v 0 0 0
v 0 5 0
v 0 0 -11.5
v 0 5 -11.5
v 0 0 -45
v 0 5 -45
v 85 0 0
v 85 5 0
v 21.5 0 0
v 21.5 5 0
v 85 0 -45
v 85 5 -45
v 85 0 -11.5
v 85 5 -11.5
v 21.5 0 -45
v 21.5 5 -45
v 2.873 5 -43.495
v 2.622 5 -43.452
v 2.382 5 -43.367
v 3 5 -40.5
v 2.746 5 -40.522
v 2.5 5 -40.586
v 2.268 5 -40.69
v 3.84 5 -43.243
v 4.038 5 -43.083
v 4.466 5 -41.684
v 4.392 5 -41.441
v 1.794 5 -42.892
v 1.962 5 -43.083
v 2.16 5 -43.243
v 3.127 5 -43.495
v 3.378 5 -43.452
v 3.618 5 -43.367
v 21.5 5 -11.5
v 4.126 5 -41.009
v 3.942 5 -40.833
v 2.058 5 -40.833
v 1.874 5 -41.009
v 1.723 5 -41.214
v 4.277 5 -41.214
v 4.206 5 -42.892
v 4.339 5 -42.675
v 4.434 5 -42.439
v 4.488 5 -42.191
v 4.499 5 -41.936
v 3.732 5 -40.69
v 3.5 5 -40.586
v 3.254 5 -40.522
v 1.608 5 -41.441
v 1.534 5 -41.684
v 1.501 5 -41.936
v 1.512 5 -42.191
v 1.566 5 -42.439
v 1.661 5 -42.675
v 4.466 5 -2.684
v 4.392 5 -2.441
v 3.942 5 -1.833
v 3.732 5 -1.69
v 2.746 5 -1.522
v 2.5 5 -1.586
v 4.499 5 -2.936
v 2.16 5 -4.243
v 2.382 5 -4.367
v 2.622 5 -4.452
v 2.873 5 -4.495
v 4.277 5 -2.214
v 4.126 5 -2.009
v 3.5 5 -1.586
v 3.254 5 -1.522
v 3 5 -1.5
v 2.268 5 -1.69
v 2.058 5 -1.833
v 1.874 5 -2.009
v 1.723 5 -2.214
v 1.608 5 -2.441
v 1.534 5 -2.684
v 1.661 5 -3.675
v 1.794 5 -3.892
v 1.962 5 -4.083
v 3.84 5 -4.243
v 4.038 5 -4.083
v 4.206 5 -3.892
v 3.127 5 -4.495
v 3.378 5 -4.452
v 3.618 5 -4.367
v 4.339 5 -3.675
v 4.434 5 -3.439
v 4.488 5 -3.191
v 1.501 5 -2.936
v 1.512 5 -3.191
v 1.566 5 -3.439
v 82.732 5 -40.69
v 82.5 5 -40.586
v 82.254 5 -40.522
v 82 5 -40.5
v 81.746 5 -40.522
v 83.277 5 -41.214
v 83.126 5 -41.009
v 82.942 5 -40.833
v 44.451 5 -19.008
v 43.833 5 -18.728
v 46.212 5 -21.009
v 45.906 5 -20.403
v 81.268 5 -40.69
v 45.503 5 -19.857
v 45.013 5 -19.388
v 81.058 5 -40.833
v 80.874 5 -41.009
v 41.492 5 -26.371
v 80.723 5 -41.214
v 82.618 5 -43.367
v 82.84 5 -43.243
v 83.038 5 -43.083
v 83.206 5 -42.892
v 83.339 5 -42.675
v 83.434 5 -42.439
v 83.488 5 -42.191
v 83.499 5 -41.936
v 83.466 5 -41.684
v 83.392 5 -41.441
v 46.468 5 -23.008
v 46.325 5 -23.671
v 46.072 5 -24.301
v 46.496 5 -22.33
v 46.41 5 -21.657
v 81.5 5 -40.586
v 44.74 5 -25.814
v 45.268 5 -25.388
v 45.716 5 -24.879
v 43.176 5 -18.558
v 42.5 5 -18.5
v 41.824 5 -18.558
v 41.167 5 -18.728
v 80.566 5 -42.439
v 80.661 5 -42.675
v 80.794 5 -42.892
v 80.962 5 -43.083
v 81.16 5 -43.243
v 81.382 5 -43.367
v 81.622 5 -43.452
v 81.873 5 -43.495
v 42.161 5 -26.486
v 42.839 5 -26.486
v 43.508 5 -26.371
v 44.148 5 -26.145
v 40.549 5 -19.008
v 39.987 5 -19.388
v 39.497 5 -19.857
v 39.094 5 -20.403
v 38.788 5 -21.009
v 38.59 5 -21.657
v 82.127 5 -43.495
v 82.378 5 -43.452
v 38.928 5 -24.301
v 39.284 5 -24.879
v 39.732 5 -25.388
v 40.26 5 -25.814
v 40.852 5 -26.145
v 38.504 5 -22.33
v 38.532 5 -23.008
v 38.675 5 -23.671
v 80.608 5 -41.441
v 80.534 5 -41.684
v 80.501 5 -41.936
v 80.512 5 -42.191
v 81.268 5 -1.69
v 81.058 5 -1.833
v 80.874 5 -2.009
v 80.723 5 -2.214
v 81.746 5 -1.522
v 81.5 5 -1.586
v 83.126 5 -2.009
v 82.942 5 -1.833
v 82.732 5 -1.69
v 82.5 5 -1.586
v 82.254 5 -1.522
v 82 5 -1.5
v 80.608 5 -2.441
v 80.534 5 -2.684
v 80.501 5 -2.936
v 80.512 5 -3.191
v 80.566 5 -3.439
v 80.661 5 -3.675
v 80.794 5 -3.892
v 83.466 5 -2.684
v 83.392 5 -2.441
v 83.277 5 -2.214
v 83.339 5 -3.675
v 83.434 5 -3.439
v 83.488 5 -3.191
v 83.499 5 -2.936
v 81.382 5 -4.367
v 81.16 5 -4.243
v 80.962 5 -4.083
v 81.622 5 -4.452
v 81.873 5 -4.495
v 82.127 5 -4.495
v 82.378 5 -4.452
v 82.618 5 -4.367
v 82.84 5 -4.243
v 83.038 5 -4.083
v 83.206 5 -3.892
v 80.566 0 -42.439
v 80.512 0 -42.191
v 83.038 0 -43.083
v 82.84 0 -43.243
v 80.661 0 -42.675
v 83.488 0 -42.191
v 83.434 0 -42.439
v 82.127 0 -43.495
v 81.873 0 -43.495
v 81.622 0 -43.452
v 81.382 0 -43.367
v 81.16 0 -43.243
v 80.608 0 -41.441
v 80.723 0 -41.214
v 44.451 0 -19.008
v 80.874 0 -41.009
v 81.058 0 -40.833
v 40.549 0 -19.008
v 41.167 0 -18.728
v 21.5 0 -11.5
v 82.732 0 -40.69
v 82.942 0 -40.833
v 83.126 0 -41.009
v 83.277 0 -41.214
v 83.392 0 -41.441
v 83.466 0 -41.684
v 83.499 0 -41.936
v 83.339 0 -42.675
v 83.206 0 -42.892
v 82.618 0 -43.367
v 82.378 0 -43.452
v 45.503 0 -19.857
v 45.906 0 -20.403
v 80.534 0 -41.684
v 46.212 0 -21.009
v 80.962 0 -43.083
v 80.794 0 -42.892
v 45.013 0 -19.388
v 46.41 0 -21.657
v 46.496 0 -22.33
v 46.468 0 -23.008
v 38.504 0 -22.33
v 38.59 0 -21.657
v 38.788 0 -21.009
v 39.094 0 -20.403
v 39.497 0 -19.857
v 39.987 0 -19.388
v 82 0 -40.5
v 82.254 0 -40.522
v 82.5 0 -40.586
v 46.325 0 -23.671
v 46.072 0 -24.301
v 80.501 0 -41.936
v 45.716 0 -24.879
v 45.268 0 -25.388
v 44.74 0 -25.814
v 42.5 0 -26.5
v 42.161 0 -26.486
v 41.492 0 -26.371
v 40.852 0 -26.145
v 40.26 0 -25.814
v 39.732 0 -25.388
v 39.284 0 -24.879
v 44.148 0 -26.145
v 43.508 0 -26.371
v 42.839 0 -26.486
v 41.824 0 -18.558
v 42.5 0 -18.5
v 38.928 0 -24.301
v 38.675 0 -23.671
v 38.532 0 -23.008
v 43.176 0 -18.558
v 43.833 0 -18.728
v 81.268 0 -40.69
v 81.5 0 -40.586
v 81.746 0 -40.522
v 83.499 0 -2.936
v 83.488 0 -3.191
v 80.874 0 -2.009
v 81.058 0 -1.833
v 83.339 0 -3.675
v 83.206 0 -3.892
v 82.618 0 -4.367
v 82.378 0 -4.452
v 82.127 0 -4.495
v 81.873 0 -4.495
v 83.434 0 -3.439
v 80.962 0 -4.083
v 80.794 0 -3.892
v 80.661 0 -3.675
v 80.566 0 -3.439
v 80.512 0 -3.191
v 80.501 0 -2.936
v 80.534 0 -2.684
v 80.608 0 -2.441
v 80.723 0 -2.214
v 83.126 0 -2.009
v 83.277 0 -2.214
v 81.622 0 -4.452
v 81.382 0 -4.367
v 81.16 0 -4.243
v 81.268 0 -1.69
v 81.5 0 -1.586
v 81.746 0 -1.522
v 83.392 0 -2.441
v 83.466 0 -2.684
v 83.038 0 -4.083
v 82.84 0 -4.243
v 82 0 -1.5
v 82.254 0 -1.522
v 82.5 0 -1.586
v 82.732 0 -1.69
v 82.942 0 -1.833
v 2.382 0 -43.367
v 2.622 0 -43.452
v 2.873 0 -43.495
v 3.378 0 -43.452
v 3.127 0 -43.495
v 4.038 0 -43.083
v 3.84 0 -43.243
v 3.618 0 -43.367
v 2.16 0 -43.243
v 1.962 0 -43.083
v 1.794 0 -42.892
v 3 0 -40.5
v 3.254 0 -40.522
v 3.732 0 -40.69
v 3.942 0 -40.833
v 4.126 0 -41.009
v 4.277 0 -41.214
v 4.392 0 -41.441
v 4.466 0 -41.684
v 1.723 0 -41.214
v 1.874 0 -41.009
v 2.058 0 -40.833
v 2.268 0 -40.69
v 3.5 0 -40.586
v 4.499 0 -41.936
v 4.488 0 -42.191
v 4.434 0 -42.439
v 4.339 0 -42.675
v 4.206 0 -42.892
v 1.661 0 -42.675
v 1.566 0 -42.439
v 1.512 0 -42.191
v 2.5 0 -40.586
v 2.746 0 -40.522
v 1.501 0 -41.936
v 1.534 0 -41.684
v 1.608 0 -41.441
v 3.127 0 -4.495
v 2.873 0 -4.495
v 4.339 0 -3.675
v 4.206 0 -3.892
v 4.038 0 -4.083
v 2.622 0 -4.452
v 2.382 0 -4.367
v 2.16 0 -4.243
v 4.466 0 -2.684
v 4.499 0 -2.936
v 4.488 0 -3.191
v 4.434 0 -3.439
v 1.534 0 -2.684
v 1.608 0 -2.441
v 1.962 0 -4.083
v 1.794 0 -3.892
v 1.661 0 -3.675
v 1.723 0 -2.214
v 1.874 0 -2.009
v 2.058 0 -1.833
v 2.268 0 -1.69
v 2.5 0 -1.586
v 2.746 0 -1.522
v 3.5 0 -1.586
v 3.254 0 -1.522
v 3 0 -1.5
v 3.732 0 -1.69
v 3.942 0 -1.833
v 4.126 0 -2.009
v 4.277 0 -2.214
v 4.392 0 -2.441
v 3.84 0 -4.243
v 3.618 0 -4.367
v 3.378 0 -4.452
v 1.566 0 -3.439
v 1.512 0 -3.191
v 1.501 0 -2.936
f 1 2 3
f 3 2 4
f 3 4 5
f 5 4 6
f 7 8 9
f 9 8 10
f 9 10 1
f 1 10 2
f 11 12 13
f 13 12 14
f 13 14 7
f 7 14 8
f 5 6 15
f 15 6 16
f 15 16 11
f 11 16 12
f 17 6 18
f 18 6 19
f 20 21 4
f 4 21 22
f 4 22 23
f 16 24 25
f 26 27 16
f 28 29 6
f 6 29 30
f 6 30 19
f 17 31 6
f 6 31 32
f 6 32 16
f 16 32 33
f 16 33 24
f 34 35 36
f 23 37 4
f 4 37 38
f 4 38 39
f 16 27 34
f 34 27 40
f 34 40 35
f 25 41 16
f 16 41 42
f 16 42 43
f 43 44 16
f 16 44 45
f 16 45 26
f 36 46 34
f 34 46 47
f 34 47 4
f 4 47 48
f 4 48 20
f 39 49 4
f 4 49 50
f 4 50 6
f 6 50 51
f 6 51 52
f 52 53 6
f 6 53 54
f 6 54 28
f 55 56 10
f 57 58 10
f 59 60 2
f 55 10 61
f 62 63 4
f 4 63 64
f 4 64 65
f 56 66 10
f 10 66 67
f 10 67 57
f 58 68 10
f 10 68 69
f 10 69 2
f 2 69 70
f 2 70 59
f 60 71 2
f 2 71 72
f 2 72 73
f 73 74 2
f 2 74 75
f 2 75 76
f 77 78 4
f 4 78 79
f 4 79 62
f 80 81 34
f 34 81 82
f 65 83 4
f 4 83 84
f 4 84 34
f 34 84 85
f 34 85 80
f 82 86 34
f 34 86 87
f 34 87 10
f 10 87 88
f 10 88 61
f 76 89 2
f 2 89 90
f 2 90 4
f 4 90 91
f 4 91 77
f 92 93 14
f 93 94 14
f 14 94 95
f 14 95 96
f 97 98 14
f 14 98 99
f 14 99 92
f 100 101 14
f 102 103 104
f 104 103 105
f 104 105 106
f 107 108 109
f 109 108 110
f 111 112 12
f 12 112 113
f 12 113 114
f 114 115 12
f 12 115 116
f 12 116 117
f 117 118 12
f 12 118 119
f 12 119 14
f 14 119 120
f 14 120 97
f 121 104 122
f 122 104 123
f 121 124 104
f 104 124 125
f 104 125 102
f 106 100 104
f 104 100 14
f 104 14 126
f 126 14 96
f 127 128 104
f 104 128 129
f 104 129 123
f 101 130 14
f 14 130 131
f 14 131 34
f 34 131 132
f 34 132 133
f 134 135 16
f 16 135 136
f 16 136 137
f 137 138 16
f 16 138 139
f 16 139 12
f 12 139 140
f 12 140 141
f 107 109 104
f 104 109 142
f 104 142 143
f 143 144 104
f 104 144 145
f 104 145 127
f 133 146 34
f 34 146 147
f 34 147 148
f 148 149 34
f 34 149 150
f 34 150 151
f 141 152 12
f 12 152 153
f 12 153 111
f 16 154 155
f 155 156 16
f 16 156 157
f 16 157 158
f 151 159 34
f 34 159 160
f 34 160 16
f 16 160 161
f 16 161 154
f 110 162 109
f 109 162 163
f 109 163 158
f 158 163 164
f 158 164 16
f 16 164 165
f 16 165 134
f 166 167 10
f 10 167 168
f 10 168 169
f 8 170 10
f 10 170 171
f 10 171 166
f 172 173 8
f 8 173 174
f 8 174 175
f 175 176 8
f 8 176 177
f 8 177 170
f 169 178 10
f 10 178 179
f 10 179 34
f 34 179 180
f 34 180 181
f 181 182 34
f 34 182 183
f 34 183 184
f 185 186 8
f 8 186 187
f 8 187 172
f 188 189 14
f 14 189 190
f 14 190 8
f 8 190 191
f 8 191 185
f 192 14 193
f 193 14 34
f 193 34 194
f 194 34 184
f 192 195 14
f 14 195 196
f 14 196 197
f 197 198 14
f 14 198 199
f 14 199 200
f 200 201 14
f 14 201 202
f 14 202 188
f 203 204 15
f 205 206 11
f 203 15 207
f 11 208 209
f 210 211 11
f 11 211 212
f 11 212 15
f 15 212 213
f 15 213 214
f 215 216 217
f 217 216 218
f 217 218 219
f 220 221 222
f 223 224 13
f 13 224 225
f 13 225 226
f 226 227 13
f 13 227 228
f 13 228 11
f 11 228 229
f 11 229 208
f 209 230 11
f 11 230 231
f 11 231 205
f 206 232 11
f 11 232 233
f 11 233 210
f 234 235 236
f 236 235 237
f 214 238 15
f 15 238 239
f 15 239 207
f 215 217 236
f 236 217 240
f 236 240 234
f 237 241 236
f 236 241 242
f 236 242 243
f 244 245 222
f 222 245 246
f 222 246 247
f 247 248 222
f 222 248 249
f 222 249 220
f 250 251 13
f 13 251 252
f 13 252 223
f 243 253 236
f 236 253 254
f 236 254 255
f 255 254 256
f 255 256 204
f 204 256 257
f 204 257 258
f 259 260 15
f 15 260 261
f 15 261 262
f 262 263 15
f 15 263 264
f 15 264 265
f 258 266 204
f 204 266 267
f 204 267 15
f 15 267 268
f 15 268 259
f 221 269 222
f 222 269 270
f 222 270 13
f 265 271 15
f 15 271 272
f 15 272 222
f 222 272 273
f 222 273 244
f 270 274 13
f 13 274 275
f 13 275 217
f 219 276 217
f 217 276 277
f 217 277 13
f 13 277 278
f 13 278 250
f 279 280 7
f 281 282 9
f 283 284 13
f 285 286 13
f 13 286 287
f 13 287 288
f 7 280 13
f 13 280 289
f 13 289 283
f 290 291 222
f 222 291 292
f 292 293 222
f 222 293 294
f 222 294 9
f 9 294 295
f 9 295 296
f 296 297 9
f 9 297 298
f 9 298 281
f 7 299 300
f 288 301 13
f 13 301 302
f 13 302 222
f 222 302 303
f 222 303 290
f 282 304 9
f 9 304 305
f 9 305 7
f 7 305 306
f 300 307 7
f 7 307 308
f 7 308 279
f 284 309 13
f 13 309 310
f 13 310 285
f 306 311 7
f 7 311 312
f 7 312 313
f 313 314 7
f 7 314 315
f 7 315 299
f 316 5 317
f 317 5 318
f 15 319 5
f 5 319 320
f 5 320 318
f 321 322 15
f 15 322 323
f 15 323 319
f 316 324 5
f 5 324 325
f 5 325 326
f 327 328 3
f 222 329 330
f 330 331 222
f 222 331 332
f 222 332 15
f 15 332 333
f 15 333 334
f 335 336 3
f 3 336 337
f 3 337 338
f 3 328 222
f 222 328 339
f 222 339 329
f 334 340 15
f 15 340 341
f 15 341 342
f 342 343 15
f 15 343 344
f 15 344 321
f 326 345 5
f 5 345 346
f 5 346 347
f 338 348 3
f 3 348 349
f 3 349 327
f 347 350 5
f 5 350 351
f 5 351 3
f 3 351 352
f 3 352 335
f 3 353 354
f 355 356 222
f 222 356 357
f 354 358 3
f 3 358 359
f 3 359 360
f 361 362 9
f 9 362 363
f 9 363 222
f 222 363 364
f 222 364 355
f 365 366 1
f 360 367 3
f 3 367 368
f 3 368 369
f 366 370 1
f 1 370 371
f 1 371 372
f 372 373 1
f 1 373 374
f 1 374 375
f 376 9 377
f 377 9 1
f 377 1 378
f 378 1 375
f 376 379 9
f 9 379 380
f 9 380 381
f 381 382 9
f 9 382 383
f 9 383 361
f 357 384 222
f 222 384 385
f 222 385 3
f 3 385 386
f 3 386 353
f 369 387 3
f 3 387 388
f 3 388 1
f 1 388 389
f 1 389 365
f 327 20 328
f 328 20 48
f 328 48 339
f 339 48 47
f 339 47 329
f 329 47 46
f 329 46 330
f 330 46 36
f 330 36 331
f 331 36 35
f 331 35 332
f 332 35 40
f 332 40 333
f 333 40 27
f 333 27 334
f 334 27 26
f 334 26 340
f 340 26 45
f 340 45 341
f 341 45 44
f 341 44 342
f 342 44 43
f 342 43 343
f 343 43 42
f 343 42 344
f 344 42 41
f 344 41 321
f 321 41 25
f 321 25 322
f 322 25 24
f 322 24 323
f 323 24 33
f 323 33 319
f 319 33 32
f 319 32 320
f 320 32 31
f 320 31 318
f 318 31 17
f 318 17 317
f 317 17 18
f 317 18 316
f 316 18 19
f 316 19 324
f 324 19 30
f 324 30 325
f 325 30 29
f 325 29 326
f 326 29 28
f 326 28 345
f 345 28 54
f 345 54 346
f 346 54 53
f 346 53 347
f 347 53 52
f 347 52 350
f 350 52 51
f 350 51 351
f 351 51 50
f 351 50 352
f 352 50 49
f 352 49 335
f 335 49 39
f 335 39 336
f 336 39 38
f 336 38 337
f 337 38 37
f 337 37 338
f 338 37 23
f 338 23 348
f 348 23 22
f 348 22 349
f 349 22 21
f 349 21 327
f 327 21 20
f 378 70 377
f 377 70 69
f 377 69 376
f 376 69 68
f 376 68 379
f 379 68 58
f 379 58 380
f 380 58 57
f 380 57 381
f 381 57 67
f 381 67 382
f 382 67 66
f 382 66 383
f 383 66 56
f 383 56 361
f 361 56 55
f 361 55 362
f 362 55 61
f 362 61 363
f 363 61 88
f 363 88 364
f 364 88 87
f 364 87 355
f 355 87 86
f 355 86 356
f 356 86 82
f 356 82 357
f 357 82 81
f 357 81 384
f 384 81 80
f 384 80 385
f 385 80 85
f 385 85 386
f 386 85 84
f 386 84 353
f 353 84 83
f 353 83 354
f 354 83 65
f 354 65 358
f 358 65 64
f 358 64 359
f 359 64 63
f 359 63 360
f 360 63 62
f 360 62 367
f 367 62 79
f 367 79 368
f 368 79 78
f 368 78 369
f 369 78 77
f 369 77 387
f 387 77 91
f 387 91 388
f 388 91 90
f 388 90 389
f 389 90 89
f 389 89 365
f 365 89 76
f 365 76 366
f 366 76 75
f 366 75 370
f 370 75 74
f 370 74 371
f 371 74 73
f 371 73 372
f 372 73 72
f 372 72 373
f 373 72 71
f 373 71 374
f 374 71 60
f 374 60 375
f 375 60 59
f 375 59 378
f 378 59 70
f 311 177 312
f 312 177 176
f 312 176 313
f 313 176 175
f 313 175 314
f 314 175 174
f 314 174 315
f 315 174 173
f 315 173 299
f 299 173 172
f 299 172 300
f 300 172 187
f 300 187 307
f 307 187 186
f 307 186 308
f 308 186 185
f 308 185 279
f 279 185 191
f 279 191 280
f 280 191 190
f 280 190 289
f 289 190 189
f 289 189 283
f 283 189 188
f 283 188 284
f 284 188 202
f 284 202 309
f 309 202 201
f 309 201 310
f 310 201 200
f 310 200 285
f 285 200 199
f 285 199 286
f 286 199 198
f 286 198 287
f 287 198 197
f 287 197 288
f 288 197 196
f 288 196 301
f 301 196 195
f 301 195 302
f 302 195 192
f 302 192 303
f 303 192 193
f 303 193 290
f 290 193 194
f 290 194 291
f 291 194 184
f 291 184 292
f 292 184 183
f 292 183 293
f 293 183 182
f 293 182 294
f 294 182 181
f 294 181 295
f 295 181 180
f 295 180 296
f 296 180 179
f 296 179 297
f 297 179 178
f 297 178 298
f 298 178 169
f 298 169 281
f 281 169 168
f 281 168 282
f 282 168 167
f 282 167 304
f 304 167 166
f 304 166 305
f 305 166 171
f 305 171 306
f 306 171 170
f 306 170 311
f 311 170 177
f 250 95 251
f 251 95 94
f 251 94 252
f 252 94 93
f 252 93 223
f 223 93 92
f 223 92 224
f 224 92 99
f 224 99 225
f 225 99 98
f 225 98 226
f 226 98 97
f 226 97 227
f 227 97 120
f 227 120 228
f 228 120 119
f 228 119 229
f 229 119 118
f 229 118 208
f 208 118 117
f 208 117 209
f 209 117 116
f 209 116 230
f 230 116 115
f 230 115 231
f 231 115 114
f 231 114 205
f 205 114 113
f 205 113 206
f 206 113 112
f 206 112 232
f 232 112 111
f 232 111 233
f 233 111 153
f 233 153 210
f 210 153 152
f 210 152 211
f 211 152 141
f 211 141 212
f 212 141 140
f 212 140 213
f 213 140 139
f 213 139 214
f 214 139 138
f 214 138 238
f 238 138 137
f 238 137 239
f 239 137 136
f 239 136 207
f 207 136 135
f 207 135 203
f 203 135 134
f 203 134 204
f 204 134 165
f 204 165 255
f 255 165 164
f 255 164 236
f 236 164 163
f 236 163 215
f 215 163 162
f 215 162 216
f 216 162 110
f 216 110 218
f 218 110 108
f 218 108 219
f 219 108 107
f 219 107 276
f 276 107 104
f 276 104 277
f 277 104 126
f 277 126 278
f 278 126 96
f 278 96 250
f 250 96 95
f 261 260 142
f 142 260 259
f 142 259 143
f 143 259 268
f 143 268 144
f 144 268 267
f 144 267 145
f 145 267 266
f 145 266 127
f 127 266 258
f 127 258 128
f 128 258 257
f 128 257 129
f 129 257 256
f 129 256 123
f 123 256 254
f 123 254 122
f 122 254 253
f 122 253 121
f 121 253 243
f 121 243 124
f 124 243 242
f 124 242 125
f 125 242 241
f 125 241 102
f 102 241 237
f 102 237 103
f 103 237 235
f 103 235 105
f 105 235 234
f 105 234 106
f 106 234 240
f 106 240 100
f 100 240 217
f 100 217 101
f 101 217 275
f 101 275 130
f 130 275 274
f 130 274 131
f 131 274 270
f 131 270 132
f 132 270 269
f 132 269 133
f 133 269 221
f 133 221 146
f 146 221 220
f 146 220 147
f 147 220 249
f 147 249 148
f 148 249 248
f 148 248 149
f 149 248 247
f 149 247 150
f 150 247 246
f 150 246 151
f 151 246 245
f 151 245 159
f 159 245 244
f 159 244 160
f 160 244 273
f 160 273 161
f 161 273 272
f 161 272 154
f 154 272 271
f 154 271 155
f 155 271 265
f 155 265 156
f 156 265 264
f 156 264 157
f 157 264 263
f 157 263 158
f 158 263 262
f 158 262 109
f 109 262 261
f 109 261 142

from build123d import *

# Parameters (mm, degrees)
SKETCH1_W           = 85
SKETCH1_H           = 45
BOSS_EXTRUDE1_DEPTH = 5
SKETCH2_R           = 1.5
CUT_EXTRUDE1_DEPTH  = 5
SKETCH3_R           = 4
CUT_EXTRUDE2_DEPTH  = 10


with BuildPart() as part:
    # Sketch1 → Boss-Extrude1 (new body)
    with BuildSketch(Plane(origin=(0, 0, 0), x_dir=(1, 0, 0), z_dir=(0, 1, 0))):
        with Locations((42.5, 22.5)):
            Rectangle(SKETCH1_W, SKETCH1_H)
    extrude(amount=BOSS_EXTRUDE1_DEPTH)

    # Sketch2 → Cut-Extrude1 (cut)
    with BuildSketch(Plane(origin=(0, 5, 0), x_dir=(1, 0, 0), z_dir=(0, 1, 0))):
        with Locations(Location((3, 42, 0), (0, 0, 270))):
            Circle(SKETCH2_R)
        with Locations(Location((3, 3, 0), (0, 0, 270))):
            Circle(SKETCH2_R)
        with Locations(Location((82, 3, 0), (0, 0, 270))):
            Circle(SKETCH2_R)
        with Locations(Location((82, 42, 0), (0, 0, 270))):
            Circle(SKETCH2_R)
    extrude(amount=-CUT_EXTRUDE1_DEPTH, mode=Mode.SUBTRACT)

    # Sketch3 → Cut-Extrude2 (cut)
    with BuildSketch(Plane(origin=(0, 5, 0), x_dir=(1, 0, 0), z_dir=(0, 1, 0))):
        with Locations(Location((42.5, 22.5, 0), (0, 0, 270))):
            Circle(SKETCH3_R)
    extrude(amount=-CUT_EXTRUDE2_DEPTH, mode=Mode.SUBTRACT)


solid = part.part
